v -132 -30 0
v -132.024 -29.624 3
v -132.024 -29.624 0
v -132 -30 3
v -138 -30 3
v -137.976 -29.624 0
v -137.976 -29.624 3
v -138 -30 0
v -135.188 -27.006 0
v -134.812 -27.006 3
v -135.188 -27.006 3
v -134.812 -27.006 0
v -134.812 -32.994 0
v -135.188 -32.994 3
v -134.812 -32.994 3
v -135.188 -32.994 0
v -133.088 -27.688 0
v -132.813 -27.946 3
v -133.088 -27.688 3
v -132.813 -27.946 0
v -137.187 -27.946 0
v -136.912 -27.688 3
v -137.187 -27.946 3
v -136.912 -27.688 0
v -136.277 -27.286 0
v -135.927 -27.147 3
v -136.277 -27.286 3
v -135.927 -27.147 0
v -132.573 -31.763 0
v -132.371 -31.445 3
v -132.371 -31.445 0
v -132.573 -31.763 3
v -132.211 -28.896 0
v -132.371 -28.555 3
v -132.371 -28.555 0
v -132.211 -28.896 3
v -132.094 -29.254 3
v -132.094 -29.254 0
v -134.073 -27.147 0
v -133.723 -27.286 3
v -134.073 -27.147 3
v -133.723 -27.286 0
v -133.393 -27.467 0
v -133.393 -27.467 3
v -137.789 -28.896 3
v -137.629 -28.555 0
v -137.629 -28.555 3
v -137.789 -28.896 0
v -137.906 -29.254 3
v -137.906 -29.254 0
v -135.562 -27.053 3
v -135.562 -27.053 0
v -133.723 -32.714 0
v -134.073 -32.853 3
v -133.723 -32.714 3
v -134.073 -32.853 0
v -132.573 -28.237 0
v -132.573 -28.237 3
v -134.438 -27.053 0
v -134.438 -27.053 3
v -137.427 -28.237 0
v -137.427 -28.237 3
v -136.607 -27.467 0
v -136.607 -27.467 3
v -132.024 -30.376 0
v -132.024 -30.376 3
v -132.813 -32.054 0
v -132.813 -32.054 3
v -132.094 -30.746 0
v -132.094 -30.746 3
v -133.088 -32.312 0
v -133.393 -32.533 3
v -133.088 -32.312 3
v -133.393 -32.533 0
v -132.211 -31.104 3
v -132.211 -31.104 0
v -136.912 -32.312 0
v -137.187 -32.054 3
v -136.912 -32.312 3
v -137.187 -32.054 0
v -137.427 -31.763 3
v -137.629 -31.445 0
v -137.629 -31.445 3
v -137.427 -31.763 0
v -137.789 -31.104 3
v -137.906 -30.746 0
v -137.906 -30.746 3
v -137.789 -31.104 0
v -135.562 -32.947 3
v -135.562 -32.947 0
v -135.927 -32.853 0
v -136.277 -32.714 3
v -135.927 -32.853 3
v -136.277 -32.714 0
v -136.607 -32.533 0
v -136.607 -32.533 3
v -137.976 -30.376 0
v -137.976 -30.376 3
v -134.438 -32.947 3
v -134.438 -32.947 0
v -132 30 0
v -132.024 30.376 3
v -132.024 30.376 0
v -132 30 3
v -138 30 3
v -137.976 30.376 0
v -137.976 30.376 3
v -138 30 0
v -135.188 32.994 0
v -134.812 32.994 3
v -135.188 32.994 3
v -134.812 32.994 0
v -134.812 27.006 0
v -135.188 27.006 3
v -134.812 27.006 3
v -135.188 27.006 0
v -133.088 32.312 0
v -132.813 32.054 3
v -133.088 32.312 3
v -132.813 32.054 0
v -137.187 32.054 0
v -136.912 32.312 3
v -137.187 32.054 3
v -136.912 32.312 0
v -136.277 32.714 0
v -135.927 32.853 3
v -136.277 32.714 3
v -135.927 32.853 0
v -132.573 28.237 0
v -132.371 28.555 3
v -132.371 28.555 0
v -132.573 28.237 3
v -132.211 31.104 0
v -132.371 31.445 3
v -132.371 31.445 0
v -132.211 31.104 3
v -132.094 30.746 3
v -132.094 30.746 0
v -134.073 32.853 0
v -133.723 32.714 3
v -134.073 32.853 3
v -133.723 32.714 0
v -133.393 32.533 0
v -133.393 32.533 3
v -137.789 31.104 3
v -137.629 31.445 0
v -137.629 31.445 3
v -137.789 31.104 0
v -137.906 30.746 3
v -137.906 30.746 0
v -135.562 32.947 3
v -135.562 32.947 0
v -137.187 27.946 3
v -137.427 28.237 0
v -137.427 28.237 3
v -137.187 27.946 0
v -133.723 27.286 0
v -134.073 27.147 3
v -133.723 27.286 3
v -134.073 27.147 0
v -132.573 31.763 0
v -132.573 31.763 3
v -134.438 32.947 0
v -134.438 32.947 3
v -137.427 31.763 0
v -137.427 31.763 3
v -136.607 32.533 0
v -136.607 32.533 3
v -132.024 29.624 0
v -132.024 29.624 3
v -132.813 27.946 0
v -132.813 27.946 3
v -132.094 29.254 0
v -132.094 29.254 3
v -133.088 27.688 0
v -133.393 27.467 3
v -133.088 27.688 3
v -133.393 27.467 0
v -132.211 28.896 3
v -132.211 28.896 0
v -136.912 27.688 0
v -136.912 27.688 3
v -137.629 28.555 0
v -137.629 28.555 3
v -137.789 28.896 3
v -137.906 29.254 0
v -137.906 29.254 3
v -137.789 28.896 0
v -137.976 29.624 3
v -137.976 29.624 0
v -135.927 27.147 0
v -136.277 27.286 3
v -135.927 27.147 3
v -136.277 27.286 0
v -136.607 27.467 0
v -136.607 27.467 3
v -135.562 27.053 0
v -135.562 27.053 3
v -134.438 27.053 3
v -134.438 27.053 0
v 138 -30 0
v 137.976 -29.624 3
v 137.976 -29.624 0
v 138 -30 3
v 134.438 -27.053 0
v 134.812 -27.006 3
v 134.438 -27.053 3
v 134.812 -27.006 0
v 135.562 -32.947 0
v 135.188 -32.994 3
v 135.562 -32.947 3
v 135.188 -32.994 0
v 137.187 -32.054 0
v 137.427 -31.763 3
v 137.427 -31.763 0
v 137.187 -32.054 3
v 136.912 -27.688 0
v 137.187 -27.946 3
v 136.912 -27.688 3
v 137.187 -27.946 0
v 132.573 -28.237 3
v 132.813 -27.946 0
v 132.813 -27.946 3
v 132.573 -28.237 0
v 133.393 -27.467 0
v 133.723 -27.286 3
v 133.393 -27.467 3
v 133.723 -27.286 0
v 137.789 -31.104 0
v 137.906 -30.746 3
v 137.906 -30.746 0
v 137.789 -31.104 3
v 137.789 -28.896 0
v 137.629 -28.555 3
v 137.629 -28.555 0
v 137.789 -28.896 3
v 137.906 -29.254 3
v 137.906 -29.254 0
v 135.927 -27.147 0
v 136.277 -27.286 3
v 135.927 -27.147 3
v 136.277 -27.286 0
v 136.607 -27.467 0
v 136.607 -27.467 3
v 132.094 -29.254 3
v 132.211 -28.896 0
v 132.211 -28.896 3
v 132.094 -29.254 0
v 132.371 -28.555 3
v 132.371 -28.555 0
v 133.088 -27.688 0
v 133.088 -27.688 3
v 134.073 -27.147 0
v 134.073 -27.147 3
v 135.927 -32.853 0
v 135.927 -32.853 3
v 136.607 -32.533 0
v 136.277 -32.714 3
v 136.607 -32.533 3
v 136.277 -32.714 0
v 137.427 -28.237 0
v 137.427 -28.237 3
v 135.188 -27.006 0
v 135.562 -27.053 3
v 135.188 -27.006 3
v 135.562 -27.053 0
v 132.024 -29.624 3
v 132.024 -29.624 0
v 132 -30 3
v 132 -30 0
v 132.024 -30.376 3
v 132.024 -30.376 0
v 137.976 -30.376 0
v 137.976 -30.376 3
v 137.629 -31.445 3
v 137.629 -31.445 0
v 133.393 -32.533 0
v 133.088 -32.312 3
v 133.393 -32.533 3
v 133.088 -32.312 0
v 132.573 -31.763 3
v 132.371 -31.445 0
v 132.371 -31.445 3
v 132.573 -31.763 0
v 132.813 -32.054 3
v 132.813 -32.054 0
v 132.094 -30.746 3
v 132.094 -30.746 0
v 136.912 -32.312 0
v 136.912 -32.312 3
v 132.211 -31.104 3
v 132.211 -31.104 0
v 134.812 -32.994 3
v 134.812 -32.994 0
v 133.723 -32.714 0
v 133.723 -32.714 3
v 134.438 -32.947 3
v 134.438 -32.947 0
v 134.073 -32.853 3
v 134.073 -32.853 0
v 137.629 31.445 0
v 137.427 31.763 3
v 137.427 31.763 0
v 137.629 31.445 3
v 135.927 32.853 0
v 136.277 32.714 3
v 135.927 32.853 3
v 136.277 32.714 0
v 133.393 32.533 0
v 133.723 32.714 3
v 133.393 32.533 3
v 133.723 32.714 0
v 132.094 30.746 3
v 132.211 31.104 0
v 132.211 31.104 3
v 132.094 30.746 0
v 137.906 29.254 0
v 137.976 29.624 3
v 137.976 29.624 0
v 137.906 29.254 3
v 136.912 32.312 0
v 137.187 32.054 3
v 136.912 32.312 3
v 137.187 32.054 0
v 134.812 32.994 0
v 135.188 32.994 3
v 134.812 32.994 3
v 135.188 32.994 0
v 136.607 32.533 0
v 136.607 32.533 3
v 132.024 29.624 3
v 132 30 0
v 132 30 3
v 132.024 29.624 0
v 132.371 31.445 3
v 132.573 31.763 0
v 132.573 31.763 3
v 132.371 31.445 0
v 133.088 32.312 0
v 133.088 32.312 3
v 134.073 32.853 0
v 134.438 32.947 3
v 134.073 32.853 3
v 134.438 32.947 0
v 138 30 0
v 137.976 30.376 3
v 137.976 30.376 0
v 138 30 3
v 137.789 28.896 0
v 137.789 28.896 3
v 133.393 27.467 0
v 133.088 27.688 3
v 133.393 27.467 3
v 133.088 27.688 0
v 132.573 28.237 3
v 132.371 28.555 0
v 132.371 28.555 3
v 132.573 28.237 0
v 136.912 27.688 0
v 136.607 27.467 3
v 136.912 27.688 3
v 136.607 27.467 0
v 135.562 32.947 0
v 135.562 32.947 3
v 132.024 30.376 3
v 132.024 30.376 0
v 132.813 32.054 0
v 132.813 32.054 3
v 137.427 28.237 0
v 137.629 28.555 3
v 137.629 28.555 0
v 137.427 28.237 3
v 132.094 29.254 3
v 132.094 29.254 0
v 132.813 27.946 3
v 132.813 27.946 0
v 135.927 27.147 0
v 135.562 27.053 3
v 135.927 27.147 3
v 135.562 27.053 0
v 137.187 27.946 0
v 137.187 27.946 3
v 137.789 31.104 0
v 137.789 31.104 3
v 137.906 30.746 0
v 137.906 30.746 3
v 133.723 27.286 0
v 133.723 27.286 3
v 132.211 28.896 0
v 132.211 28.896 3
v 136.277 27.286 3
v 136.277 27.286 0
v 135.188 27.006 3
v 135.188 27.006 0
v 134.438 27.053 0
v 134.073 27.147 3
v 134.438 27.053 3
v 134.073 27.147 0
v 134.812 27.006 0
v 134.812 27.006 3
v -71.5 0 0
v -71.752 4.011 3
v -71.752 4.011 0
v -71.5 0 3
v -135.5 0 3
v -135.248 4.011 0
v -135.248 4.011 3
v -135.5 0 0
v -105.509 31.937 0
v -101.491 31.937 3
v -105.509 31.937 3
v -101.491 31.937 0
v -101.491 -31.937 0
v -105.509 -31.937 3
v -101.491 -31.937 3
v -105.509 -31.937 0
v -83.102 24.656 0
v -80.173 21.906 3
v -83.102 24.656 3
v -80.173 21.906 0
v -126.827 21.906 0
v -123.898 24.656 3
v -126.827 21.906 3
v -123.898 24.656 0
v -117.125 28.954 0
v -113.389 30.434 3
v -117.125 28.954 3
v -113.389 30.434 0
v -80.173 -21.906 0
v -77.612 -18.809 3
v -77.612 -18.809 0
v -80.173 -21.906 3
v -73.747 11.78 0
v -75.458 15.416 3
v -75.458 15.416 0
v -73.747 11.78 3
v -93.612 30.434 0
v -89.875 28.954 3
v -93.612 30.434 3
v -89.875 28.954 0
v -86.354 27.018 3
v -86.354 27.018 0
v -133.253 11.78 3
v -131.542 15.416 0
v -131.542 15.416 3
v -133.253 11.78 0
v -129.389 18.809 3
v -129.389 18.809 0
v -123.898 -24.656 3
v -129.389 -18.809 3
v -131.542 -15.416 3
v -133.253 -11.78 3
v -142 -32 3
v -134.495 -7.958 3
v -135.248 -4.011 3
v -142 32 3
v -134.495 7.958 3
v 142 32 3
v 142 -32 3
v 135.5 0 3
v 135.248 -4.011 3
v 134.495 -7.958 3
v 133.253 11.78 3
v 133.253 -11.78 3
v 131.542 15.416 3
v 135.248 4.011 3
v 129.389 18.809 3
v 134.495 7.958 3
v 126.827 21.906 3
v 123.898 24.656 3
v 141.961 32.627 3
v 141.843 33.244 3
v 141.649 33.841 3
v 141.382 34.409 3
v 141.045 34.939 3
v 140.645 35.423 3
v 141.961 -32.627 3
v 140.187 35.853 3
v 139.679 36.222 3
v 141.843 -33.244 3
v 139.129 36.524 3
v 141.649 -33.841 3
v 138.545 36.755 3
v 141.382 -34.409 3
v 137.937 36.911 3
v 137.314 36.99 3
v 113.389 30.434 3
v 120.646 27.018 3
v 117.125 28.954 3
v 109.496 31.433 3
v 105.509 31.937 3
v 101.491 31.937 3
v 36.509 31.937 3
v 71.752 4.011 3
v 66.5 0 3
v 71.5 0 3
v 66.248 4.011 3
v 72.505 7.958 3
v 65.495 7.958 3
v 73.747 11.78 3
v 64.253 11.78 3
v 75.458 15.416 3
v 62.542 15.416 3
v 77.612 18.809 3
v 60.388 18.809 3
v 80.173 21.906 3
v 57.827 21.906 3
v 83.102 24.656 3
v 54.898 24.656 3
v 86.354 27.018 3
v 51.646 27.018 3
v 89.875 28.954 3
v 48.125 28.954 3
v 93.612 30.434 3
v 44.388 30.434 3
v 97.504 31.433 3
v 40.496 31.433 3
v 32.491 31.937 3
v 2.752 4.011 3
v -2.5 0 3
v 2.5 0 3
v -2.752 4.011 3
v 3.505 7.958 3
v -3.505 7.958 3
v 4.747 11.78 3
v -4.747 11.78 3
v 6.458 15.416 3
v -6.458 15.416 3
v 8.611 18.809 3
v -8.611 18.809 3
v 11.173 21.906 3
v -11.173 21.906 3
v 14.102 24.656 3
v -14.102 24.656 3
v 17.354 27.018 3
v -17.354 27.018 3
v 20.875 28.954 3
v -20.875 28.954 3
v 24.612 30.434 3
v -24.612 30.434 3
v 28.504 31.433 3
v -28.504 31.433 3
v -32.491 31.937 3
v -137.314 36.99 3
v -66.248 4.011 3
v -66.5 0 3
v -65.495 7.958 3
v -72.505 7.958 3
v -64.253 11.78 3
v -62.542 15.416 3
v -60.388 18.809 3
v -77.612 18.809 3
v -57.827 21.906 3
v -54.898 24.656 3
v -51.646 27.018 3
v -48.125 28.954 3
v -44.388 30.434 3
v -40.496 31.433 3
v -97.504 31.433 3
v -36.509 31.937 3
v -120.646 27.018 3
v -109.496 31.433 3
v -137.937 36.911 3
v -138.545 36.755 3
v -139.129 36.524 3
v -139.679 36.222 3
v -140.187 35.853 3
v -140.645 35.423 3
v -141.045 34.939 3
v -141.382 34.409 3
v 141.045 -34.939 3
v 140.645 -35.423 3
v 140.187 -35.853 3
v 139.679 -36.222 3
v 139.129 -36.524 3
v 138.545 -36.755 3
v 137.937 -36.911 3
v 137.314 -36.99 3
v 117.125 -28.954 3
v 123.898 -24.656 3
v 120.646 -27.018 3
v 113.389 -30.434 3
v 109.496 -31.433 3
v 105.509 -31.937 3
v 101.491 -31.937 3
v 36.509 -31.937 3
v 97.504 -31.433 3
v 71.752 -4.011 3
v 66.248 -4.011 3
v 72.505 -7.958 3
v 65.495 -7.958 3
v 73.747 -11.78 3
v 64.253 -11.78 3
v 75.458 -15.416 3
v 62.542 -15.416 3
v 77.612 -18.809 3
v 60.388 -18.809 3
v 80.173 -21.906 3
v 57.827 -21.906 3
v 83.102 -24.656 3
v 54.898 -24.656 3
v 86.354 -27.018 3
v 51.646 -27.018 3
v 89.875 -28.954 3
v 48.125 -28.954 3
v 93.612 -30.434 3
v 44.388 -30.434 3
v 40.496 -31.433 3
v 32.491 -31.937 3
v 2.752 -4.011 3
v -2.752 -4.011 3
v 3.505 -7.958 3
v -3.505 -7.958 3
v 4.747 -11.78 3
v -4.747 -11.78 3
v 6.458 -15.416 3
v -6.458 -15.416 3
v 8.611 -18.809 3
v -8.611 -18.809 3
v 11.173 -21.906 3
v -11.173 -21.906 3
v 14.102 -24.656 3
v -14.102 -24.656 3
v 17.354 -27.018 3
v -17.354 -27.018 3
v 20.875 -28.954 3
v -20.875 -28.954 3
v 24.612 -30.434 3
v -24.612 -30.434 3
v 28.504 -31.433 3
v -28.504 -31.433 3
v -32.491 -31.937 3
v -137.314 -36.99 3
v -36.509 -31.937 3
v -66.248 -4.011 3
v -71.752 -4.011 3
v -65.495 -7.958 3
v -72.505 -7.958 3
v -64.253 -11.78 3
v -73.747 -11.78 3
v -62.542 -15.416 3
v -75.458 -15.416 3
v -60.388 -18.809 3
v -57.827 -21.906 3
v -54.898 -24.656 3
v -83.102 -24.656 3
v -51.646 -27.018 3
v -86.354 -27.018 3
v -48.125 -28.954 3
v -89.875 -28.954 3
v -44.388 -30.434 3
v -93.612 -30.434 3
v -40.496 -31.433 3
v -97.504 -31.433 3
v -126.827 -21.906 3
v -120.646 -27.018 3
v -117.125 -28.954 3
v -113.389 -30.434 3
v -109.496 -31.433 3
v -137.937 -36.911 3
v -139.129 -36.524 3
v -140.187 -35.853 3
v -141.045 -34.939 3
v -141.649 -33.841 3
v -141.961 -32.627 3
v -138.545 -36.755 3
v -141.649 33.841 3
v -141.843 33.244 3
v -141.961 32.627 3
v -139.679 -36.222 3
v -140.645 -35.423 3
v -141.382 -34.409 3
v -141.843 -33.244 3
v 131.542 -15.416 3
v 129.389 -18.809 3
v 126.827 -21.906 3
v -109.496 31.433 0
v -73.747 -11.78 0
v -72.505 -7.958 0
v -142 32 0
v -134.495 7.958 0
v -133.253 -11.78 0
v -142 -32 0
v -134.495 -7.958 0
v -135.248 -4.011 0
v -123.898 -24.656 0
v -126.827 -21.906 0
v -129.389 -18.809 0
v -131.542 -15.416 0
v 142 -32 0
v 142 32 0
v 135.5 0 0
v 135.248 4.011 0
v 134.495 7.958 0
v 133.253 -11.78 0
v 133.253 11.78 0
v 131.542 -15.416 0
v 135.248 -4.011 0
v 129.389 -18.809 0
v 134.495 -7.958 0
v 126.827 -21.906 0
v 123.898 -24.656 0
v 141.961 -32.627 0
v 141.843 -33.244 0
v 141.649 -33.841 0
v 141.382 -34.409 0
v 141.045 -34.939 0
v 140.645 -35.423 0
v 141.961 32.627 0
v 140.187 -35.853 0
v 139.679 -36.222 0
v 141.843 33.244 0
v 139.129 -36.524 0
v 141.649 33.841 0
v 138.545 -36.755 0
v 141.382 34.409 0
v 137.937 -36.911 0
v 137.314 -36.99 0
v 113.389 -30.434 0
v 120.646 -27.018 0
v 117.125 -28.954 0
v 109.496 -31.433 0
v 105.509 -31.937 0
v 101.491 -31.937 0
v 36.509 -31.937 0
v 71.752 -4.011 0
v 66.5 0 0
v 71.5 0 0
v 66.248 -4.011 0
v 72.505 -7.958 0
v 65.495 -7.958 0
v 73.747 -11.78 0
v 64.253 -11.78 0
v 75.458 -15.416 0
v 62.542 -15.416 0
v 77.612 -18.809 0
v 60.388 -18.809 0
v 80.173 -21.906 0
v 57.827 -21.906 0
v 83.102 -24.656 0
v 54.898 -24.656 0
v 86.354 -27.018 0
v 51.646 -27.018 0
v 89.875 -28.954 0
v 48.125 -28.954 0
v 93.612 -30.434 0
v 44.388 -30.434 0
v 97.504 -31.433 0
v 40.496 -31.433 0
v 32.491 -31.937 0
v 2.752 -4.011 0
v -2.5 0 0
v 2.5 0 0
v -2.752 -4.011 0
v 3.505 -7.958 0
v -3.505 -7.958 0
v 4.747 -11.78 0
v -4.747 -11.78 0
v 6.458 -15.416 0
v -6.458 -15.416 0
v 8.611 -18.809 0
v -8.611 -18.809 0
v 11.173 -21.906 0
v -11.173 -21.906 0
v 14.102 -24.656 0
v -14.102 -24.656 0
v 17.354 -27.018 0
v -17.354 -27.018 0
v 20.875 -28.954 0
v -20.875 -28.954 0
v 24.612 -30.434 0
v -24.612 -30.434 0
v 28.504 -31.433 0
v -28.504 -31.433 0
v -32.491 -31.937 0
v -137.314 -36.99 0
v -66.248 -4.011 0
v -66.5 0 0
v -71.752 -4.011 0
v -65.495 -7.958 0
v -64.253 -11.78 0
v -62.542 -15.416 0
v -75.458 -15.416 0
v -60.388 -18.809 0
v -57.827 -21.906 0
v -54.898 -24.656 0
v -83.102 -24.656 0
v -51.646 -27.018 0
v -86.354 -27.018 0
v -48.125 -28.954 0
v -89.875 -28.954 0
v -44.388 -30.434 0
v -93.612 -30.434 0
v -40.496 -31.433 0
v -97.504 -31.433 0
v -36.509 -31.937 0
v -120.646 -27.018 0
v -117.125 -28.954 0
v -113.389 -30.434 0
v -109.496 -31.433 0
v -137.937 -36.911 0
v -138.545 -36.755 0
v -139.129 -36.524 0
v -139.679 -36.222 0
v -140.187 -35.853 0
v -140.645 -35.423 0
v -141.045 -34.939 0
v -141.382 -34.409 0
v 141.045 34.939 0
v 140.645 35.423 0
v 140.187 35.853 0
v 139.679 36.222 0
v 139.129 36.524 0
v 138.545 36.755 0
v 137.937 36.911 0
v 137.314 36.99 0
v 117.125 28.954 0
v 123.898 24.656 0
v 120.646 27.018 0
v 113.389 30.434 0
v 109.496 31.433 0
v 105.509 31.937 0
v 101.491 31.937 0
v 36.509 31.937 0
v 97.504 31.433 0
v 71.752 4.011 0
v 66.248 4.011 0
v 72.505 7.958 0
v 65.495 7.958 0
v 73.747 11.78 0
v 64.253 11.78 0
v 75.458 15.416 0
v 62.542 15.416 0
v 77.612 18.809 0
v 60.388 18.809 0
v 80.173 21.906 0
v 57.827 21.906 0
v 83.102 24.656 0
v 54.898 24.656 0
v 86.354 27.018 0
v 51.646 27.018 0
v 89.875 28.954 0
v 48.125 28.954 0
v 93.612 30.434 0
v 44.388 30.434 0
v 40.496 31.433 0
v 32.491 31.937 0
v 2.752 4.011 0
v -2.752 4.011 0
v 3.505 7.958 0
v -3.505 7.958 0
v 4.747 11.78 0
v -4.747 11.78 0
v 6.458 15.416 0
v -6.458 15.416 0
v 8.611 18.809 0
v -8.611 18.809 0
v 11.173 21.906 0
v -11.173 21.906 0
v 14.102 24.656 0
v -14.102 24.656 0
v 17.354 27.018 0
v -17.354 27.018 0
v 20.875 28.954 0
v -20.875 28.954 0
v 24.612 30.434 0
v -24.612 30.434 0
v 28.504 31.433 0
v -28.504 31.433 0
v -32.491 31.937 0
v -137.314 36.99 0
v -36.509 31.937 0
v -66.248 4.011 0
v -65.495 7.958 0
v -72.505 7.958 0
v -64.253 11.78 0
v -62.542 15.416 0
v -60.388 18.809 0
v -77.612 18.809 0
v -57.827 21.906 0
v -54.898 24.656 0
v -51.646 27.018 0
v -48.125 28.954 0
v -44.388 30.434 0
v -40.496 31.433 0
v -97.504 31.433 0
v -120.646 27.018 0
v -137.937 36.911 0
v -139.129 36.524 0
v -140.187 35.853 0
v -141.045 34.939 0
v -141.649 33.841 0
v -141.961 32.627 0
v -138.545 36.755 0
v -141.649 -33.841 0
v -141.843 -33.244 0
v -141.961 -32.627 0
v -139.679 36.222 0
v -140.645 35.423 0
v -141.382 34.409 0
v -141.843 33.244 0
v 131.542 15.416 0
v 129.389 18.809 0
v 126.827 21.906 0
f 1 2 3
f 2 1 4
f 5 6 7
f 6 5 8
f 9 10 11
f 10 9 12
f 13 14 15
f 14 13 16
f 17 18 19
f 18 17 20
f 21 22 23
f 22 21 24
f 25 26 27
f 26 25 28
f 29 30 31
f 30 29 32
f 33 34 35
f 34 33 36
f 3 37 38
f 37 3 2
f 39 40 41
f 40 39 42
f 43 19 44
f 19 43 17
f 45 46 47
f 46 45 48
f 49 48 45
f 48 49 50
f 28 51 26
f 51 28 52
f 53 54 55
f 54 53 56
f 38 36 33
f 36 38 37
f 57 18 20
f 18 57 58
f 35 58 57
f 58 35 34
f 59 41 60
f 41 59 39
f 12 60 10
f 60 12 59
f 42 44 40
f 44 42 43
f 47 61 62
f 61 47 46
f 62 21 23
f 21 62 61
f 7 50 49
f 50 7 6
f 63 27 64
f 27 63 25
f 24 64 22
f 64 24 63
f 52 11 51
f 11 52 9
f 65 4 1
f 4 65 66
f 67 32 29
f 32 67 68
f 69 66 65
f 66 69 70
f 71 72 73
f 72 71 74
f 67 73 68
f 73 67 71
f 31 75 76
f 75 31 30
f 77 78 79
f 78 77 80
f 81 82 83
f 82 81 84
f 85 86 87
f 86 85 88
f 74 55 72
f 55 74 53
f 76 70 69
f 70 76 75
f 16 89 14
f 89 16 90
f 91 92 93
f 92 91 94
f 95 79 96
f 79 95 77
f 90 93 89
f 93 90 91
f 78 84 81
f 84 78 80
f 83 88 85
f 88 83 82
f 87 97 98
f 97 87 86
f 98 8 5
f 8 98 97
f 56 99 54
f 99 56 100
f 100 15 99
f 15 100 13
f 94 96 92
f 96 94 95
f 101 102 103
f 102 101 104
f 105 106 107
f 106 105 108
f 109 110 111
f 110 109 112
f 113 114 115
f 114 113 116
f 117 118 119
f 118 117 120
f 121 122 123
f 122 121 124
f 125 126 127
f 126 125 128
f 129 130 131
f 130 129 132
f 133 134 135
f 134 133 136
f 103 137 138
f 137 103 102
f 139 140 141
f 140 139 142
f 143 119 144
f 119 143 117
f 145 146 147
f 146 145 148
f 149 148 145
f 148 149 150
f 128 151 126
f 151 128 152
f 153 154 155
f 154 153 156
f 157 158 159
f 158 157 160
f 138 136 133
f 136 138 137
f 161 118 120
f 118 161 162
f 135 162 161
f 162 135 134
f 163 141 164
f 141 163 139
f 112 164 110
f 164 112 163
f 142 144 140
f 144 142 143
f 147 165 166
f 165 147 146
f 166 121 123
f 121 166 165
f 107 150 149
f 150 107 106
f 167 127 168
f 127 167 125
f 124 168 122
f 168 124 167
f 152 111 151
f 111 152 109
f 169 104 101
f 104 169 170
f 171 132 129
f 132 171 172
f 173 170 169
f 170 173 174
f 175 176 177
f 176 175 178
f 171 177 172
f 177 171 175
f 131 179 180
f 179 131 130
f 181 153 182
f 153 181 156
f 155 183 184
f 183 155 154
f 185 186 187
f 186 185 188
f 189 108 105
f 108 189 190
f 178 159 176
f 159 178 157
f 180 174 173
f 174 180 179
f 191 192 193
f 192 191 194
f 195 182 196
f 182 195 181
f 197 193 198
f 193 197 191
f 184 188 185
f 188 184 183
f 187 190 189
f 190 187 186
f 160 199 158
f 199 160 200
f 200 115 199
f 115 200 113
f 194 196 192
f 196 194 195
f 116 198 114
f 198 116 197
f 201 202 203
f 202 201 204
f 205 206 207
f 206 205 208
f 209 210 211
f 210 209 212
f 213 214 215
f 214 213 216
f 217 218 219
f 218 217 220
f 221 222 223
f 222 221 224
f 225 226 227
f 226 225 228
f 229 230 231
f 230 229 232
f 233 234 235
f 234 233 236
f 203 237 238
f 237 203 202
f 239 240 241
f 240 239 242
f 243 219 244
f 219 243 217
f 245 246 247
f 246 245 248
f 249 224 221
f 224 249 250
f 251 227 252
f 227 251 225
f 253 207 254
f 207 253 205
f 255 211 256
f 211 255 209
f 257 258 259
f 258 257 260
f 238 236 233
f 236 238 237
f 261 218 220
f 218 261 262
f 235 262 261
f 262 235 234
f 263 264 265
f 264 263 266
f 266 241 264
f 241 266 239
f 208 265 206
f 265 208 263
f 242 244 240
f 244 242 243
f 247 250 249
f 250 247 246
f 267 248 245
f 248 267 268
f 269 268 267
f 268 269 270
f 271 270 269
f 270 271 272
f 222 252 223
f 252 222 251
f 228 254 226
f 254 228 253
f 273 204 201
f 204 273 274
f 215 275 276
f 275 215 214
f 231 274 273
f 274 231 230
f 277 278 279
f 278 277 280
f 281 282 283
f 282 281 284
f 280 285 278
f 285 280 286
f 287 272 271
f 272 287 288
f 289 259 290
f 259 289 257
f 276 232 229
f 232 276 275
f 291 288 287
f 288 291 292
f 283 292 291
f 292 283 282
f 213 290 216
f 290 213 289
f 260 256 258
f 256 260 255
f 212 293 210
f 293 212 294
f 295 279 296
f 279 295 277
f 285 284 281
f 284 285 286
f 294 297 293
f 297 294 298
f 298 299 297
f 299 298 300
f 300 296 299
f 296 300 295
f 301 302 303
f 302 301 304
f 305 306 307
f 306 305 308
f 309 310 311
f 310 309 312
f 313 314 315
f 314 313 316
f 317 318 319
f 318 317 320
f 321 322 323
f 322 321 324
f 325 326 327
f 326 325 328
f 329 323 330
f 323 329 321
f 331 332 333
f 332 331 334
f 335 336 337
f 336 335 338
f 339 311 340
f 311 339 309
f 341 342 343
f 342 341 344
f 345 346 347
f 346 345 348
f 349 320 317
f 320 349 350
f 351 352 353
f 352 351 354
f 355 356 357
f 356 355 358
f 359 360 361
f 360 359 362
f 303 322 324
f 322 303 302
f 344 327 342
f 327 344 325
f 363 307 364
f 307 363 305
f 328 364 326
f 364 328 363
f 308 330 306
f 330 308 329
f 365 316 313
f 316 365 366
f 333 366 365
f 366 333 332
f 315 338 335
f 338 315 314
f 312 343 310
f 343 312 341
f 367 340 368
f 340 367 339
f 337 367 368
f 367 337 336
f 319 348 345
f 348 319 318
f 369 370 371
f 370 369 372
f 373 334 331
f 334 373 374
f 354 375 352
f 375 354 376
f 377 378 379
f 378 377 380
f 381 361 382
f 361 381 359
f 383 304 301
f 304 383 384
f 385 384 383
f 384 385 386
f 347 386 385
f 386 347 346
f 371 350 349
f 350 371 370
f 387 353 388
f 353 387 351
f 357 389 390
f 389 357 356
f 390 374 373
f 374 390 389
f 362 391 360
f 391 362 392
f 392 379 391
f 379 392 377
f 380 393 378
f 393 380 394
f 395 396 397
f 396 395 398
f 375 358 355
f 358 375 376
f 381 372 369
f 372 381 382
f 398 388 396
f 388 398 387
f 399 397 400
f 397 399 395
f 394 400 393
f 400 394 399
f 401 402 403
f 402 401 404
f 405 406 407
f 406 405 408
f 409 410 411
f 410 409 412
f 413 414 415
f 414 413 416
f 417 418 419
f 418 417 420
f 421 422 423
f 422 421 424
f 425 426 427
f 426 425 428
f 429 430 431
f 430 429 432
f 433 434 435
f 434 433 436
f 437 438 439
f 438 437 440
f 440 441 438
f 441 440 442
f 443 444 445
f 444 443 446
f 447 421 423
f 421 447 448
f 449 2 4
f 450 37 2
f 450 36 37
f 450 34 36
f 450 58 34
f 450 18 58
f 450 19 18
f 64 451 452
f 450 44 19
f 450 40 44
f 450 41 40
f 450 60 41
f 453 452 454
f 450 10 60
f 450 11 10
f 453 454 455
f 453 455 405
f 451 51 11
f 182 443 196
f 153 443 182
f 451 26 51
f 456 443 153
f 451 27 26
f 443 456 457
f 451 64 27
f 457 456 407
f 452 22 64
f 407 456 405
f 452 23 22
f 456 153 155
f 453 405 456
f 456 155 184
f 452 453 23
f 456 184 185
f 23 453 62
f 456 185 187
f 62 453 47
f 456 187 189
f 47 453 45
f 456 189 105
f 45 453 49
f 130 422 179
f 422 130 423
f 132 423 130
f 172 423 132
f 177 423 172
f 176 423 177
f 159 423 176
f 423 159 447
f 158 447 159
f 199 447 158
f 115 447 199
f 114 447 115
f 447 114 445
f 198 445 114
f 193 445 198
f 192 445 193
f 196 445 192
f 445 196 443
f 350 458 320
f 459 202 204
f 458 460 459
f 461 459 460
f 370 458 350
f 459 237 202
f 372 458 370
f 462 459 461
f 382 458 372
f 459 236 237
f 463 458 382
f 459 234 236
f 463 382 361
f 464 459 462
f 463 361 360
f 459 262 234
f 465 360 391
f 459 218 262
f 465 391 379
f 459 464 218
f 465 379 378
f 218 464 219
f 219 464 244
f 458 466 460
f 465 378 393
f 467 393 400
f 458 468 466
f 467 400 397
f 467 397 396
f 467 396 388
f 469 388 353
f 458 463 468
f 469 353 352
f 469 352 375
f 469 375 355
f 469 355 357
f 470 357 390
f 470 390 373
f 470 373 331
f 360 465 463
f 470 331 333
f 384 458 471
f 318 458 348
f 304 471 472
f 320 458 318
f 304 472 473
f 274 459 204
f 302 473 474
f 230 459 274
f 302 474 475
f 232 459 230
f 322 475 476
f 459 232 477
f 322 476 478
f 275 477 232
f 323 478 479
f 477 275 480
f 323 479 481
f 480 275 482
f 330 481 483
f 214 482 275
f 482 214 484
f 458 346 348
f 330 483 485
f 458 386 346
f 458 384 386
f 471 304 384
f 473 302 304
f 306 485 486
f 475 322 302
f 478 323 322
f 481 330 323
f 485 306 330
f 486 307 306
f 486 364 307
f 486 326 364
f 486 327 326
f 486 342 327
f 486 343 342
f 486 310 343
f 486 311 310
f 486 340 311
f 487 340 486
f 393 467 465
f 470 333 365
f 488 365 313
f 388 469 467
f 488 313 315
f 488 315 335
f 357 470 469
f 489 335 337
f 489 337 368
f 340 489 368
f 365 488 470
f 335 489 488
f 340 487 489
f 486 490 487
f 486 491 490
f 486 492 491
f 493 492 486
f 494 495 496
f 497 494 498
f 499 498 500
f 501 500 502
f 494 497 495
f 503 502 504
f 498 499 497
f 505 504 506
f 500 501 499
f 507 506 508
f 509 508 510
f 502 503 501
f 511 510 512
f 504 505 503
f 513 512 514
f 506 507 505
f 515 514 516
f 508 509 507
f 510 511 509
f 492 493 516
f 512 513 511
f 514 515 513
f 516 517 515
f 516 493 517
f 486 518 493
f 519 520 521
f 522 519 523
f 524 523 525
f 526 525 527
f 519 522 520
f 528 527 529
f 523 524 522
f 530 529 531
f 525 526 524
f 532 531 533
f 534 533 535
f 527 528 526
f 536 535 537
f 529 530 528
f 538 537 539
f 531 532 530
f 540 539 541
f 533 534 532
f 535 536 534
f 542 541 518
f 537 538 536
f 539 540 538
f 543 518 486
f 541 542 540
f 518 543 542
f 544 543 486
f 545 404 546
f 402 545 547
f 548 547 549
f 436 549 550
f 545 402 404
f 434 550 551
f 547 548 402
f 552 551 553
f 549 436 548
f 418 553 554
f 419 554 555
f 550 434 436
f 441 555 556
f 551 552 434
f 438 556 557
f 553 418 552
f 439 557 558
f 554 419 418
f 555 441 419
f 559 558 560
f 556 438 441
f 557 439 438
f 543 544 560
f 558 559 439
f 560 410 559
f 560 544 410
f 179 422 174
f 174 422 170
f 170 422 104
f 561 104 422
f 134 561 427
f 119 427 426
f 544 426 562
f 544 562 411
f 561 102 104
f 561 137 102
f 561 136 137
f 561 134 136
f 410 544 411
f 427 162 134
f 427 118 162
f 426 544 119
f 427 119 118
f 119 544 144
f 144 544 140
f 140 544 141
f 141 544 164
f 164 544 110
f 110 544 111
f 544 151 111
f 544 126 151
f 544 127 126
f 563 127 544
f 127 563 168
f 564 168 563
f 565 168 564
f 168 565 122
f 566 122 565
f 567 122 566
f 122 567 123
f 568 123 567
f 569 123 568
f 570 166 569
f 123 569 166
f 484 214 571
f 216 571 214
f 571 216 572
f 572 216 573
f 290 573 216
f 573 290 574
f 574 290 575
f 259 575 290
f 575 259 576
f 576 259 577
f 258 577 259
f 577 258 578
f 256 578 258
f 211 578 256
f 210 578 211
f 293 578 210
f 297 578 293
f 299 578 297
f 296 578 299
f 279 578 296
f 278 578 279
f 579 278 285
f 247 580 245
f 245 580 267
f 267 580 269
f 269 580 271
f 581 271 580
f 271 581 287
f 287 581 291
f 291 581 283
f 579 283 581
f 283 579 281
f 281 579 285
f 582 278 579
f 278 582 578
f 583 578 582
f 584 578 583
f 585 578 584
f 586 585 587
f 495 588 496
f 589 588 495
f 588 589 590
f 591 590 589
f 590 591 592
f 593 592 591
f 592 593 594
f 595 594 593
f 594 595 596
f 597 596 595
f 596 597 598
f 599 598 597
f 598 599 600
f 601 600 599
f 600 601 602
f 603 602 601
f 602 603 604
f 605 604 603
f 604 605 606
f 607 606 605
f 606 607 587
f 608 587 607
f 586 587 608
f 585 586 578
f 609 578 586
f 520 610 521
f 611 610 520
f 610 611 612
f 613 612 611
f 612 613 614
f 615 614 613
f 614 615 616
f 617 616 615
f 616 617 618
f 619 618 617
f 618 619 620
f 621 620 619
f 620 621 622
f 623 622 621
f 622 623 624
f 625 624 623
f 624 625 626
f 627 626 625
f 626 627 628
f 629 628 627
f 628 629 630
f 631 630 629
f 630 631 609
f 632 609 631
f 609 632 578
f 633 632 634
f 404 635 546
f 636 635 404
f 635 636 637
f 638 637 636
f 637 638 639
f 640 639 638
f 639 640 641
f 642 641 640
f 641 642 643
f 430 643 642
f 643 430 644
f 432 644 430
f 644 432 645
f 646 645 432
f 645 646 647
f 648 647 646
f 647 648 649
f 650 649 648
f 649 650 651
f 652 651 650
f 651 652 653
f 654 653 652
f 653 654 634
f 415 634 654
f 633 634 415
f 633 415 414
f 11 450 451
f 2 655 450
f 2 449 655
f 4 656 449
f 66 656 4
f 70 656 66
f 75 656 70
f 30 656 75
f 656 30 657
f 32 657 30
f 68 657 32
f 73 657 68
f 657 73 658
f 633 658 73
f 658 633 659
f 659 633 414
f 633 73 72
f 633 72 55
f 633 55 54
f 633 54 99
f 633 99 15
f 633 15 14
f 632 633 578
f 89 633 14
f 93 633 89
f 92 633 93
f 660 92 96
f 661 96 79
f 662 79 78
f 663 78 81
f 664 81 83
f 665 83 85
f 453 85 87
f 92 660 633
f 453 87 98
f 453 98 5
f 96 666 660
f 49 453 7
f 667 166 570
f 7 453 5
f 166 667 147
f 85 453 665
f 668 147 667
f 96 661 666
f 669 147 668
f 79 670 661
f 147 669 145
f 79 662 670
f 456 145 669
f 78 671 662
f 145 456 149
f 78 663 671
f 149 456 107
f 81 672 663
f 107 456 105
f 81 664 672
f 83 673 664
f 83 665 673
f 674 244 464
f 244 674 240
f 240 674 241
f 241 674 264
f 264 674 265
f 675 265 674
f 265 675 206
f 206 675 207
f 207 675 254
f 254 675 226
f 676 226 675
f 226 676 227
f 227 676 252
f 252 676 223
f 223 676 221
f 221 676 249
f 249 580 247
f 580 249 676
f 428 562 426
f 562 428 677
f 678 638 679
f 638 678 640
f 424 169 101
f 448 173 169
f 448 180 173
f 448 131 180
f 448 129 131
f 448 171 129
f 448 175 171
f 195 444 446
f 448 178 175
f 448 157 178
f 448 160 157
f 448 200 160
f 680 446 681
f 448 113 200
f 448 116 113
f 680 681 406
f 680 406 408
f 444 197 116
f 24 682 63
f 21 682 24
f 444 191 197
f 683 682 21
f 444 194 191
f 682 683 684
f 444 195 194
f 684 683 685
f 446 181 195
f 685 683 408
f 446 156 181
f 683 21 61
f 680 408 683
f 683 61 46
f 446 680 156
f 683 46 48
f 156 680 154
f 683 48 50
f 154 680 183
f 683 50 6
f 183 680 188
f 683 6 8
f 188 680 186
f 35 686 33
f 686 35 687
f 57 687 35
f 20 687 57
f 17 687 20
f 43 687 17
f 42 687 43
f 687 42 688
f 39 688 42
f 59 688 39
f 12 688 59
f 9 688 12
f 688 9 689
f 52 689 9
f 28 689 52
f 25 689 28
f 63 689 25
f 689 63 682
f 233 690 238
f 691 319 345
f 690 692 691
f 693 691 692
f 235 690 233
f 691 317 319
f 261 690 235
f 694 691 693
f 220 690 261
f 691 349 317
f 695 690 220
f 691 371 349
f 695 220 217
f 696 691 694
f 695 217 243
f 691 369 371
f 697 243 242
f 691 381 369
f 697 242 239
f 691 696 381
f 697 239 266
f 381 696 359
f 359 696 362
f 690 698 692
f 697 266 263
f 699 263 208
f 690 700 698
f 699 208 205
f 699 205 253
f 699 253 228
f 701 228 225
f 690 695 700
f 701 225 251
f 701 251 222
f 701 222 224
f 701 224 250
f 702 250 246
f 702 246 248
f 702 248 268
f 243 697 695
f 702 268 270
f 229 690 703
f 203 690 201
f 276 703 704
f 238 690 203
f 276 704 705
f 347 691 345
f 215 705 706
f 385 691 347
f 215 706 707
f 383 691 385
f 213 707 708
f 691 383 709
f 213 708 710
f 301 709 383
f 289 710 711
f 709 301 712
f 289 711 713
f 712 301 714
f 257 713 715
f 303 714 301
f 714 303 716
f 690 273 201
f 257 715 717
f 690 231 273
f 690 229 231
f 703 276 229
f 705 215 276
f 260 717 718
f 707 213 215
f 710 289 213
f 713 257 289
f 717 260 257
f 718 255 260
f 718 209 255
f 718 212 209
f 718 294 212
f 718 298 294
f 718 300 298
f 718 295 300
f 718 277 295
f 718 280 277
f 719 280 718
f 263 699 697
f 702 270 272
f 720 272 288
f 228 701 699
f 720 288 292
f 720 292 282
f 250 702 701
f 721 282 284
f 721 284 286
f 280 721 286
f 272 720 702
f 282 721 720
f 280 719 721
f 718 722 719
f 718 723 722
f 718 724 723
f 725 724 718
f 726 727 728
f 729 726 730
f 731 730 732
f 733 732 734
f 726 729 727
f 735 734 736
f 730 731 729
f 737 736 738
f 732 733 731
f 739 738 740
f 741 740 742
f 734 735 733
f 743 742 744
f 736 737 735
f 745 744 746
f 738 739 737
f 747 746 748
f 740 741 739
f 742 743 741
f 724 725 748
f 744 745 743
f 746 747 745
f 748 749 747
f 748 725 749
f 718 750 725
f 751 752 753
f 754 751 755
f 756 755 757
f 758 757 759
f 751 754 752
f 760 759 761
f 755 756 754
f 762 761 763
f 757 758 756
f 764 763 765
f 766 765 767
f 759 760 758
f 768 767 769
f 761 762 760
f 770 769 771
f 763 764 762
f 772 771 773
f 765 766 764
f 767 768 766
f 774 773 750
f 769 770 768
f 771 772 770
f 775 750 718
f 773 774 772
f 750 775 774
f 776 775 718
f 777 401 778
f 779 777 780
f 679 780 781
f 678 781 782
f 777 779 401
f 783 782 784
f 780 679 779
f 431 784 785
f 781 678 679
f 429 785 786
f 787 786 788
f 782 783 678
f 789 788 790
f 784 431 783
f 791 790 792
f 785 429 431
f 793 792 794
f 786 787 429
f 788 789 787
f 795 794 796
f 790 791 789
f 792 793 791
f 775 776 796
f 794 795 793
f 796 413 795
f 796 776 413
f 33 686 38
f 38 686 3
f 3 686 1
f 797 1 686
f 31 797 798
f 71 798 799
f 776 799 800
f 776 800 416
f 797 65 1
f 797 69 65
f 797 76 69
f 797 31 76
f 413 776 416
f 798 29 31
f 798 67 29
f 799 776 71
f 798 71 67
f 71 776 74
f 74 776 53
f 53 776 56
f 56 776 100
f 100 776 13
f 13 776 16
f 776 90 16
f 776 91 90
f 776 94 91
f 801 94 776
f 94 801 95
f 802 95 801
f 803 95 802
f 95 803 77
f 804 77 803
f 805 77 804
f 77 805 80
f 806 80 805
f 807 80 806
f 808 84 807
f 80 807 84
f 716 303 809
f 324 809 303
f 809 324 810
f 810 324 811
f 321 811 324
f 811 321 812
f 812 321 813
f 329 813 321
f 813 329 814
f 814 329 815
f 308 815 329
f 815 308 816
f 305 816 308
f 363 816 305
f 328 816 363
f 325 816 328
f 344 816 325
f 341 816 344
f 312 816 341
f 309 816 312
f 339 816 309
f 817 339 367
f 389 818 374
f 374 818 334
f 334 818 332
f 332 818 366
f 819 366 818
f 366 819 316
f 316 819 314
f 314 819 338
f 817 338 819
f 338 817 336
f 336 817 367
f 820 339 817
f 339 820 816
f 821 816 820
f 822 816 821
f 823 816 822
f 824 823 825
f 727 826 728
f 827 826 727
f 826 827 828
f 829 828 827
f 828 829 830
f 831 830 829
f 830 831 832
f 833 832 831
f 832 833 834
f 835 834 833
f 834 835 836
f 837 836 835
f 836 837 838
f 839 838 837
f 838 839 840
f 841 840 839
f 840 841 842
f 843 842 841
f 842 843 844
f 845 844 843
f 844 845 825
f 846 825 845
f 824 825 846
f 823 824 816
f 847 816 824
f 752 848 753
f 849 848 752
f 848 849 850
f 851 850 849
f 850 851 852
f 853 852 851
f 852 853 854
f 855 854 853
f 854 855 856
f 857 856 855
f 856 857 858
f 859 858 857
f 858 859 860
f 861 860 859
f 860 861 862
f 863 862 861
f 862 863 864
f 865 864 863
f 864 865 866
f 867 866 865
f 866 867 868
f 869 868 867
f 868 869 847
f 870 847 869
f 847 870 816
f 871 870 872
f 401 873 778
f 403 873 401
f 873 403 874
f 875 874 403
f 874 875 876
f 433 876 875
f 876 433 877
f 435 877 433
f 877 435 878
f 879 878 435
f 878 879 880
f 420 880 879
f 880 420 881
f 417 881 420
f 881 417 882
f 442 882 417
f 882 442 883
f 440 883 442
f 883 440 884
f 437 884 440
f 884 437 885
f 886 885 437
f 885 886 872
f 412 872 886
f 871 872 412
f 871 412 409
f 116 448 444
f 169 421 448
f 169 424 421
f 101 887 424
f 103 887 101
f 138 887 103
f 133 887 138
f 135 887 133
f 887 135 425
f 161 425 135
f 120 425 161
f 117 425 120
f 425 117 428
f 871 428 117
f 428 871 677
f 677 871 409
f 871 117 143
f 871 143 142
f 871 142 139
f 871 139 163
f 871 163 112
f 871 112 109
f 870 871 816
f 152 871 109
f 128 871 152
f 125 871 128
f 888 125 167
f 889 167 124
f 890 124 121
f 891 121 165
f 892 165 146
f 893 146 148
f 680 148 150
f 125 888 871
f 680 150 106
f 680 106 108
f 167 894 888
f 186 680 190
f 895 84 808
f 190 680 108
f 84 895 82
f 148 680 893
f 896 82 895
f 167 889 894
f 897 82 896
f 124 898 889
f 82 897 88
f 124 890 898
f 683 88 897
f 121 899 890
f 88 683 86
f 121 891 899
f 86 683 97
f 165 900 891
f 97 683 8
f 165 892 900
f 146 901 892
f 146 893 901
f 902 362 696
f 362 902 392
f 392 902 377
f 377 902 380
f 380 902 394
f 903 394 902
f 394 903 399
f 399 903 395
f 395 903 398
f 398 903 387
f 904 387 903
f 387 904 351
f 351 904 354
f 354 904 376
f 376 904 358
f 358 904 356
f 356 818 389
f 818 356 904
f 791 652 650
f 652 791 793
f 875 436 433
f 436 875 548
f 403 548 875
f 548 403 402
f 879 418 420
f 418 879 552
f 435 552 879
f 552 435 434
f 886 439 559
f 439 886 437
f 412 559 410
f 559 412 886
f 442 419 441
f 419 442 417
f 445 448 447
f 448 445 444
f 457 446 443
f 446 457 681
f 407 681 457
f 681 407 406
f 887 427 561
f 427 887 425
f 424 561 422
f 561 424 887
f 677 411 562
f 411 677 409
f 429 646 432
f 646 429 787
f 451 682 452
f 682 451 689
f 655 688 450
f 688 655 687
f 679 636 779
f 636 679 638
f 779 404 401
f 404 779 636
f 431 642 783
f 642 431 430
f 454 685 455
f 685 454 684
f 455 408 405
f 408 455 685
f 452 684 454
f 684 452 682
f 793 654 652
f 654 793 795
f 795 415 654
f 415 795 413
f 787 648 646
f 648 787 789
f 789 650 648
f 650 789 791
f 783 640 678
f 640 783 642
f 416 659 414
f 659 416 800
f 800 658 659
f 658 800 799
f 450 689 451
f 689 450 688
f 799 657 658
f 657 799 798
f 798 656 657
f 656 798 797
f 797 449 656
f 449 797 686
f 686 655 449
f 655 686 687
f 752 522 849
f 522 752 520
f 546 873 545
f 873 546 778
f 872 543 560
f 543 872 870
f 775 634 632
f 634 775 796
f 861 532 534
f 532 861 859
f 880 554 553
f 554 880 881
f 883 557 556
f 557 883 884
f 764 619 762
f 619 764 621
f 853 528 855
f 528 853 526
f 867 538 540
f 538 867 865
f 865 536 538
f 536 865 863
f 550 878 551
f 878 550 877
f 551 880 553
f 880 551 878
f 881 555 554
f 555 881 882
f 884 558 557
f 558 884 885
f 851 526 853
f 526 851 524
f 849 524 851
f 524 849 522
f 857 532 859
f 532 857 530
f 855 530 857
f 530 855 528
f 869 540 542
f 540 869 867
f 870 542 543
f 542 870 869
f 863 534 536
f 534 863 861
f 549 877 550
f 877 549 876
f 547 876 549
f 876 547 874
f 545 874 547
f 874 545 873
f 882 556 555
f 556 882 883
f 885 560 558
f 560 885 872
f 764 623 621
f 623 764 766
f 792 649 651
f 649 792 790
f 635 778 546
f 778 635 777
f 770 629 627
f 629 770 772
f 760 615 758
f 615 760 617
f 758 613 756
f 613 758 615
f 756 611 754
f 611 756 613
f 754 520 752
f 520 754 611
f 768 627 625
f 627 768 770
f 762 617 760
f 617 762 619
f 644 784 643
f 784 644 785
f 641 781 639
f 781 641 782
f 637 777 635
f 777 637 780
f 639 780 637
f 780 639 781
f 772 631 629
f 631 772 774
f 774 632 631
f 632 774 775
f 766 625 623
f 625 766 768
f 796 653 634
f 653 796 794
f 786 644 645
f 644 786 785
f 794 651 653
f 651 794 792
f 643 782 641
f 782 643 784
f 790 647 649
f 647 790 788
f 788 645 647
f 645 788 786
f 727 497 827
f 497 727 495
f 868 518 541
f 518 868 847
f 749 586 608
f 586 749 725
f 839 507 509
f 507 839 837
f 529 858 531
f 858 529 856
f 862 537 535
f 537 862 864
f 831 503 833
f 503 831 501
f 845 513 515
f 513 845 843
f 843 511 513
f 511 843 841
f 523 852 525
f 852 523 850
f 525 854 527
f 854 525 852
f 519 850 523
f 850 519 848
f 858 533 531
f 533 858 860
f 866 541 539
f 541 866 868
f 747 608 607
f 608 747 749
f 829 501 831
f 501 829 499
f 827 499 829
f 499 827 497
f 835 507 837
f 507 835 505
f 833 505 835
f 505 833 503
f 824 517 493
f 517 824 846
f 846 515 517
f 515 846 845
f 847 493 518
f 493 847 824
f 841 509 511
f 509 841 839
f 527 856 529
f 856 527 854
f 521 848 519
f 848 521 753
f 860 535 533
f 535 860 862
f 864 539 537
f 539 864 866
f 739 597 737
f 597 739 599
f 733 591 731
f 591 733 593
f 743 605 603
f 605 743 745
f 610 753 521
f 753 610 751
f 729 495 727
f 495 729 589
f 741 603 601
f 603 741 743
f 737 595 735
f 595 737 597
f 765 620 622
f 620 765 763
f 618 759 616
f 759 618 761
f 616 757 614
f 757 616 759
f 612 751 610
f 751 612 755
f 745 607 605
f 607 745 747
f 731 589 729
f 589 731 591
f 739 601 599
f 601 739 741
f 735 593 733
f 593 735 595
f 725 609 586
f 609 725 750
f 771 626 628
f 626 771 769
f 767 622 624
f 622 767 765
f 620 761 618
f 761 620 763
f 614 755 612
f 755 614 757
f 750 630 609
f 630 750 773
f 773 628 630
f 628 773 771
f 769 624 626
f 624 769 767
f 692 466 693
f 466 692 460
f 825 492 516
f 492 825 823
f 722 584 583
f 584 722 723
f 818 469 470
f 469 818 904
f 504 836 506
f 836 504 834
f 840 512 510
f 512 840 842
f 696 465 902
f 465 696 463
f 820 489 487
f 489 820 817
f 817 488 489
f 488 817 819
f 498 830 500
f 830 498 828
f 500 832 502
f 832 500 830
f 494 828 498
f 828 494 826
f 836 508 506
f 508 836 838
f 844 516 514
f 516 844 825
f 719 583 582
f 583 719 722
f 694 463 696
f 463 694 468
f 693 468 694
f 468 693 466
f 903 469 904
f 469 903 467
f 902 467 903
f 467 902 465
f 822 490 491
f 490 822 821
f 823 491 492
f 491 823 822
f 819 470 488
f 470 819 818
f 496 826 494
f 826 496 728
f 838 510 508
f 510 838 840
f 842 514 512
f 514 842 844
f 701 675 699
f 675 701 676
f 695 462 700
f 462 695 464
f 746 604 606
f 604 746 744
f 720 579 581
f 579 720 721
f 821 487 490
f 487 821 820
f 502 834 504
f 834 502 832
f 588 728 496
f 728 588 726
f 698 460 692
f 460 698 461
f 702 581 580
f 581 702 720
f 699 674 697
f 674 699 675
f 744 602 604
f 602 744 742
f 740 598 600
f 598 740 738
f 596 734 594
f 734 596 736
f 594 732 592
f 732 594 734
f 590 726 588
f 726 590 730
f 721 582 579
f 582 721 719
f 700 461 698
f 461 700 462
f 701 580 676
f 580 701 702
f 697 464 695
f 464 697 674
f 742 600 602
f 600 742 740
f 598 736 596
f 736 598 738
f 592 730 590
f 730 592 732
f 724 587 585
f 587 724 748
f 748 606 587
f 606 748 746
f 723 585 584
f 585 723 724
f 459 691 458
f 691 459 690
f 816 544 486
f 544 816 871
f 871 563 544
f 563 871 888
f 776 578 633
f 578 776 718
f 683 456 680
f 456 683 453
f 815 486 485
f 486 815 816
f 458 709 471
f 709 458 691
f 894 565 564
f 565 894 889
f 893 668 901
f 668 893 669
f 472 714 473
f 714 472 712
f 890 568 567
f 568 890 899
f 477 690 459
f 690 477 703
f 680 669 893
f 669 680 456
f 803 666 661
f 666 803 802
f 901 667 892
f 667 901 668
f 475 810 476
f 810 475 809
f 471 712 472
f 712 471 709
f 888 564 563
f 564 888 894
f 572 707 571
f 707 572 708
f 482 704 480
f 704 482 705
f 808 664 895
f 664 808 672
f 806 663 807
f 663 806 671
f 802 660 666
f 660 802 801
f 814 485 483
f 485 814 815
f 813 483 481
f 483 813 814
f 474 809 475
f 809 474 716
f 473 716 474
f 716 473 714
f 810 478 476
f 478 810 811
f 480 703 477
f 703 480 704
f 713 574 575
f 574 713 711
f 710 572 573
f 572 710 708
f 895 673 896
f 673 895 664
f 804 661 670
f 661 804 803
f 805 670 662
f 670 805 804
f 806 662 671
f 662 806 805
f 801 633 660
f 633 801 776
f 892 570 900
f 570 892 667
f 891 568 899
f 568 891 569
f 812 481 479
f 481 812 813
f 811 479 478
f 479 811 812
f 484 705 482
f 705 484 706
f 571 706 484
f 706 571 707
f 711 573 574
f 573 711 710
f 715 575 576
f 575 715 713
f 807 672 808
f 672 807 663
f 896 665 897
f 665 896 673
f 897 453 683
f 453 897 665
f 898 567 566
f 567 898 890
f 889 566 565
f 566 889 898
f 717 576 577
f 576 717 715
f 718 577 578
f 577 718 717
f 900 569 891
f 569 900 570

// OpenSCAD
$fn = 50;


difference() {
	union() {
		hull() {
			translate(v = [-137.0000000000, 32.0000000000, 0]) {
				cylinder(h = 3, r = 5);
			}
			translate(v = [137.0000000000, 32.0000000000, 0]) {
				cylinder(h = 3, r = 5);
			}
			translate(v = [-137.0000000000, -32.0000000000, 0]) {
				cylinder(h = 3, r = 5);
			}
			translate(v = [137.0000000000, -32.0000000000, 0]) {
				cylinder(h = 3, r = 5);
			}
		}
	}
	union() {
		#translate(v = [-135.0000000000, -30.0000000000, -100.0000000000]) {
			cylinder(h = 200, r = 3.0000000000);
		}
		#translate(v = [-135.0000000000, 30.0000000000, -100.0000000000]) {
			cylinder(h = 200, r = 3.0000000000);
		}
		#translate(v = [135.0000000000, -30.0000000000, -100.0000000000]) {
			cylinder(h = 200, r = 3.0000000000);
		}
		#translate(v = [135.0000000000, 30.0000000000, -100.0000000000]) {
			cylinder(h = 200, r = 3.0000000000);
		}
		#translate(v = [-103.5000000000, 0, 0]) {
			cylinder(h = 3, r = 32.0000000000);
		}
		#translate(v = [-34.5000000000, 0, 0]) {
			cylinder(h = 3, r = 32.0000000000);
		}
		#translate(v = [34.5000000000, 0, 0]) {
			cylinder(h = 3, r = 32.0000000000);
		}
		#translate(v = [103.5000000000, 0, 0]) {
			cylinder(h = 3, r = 32.0000000000);
		}
	}
}
